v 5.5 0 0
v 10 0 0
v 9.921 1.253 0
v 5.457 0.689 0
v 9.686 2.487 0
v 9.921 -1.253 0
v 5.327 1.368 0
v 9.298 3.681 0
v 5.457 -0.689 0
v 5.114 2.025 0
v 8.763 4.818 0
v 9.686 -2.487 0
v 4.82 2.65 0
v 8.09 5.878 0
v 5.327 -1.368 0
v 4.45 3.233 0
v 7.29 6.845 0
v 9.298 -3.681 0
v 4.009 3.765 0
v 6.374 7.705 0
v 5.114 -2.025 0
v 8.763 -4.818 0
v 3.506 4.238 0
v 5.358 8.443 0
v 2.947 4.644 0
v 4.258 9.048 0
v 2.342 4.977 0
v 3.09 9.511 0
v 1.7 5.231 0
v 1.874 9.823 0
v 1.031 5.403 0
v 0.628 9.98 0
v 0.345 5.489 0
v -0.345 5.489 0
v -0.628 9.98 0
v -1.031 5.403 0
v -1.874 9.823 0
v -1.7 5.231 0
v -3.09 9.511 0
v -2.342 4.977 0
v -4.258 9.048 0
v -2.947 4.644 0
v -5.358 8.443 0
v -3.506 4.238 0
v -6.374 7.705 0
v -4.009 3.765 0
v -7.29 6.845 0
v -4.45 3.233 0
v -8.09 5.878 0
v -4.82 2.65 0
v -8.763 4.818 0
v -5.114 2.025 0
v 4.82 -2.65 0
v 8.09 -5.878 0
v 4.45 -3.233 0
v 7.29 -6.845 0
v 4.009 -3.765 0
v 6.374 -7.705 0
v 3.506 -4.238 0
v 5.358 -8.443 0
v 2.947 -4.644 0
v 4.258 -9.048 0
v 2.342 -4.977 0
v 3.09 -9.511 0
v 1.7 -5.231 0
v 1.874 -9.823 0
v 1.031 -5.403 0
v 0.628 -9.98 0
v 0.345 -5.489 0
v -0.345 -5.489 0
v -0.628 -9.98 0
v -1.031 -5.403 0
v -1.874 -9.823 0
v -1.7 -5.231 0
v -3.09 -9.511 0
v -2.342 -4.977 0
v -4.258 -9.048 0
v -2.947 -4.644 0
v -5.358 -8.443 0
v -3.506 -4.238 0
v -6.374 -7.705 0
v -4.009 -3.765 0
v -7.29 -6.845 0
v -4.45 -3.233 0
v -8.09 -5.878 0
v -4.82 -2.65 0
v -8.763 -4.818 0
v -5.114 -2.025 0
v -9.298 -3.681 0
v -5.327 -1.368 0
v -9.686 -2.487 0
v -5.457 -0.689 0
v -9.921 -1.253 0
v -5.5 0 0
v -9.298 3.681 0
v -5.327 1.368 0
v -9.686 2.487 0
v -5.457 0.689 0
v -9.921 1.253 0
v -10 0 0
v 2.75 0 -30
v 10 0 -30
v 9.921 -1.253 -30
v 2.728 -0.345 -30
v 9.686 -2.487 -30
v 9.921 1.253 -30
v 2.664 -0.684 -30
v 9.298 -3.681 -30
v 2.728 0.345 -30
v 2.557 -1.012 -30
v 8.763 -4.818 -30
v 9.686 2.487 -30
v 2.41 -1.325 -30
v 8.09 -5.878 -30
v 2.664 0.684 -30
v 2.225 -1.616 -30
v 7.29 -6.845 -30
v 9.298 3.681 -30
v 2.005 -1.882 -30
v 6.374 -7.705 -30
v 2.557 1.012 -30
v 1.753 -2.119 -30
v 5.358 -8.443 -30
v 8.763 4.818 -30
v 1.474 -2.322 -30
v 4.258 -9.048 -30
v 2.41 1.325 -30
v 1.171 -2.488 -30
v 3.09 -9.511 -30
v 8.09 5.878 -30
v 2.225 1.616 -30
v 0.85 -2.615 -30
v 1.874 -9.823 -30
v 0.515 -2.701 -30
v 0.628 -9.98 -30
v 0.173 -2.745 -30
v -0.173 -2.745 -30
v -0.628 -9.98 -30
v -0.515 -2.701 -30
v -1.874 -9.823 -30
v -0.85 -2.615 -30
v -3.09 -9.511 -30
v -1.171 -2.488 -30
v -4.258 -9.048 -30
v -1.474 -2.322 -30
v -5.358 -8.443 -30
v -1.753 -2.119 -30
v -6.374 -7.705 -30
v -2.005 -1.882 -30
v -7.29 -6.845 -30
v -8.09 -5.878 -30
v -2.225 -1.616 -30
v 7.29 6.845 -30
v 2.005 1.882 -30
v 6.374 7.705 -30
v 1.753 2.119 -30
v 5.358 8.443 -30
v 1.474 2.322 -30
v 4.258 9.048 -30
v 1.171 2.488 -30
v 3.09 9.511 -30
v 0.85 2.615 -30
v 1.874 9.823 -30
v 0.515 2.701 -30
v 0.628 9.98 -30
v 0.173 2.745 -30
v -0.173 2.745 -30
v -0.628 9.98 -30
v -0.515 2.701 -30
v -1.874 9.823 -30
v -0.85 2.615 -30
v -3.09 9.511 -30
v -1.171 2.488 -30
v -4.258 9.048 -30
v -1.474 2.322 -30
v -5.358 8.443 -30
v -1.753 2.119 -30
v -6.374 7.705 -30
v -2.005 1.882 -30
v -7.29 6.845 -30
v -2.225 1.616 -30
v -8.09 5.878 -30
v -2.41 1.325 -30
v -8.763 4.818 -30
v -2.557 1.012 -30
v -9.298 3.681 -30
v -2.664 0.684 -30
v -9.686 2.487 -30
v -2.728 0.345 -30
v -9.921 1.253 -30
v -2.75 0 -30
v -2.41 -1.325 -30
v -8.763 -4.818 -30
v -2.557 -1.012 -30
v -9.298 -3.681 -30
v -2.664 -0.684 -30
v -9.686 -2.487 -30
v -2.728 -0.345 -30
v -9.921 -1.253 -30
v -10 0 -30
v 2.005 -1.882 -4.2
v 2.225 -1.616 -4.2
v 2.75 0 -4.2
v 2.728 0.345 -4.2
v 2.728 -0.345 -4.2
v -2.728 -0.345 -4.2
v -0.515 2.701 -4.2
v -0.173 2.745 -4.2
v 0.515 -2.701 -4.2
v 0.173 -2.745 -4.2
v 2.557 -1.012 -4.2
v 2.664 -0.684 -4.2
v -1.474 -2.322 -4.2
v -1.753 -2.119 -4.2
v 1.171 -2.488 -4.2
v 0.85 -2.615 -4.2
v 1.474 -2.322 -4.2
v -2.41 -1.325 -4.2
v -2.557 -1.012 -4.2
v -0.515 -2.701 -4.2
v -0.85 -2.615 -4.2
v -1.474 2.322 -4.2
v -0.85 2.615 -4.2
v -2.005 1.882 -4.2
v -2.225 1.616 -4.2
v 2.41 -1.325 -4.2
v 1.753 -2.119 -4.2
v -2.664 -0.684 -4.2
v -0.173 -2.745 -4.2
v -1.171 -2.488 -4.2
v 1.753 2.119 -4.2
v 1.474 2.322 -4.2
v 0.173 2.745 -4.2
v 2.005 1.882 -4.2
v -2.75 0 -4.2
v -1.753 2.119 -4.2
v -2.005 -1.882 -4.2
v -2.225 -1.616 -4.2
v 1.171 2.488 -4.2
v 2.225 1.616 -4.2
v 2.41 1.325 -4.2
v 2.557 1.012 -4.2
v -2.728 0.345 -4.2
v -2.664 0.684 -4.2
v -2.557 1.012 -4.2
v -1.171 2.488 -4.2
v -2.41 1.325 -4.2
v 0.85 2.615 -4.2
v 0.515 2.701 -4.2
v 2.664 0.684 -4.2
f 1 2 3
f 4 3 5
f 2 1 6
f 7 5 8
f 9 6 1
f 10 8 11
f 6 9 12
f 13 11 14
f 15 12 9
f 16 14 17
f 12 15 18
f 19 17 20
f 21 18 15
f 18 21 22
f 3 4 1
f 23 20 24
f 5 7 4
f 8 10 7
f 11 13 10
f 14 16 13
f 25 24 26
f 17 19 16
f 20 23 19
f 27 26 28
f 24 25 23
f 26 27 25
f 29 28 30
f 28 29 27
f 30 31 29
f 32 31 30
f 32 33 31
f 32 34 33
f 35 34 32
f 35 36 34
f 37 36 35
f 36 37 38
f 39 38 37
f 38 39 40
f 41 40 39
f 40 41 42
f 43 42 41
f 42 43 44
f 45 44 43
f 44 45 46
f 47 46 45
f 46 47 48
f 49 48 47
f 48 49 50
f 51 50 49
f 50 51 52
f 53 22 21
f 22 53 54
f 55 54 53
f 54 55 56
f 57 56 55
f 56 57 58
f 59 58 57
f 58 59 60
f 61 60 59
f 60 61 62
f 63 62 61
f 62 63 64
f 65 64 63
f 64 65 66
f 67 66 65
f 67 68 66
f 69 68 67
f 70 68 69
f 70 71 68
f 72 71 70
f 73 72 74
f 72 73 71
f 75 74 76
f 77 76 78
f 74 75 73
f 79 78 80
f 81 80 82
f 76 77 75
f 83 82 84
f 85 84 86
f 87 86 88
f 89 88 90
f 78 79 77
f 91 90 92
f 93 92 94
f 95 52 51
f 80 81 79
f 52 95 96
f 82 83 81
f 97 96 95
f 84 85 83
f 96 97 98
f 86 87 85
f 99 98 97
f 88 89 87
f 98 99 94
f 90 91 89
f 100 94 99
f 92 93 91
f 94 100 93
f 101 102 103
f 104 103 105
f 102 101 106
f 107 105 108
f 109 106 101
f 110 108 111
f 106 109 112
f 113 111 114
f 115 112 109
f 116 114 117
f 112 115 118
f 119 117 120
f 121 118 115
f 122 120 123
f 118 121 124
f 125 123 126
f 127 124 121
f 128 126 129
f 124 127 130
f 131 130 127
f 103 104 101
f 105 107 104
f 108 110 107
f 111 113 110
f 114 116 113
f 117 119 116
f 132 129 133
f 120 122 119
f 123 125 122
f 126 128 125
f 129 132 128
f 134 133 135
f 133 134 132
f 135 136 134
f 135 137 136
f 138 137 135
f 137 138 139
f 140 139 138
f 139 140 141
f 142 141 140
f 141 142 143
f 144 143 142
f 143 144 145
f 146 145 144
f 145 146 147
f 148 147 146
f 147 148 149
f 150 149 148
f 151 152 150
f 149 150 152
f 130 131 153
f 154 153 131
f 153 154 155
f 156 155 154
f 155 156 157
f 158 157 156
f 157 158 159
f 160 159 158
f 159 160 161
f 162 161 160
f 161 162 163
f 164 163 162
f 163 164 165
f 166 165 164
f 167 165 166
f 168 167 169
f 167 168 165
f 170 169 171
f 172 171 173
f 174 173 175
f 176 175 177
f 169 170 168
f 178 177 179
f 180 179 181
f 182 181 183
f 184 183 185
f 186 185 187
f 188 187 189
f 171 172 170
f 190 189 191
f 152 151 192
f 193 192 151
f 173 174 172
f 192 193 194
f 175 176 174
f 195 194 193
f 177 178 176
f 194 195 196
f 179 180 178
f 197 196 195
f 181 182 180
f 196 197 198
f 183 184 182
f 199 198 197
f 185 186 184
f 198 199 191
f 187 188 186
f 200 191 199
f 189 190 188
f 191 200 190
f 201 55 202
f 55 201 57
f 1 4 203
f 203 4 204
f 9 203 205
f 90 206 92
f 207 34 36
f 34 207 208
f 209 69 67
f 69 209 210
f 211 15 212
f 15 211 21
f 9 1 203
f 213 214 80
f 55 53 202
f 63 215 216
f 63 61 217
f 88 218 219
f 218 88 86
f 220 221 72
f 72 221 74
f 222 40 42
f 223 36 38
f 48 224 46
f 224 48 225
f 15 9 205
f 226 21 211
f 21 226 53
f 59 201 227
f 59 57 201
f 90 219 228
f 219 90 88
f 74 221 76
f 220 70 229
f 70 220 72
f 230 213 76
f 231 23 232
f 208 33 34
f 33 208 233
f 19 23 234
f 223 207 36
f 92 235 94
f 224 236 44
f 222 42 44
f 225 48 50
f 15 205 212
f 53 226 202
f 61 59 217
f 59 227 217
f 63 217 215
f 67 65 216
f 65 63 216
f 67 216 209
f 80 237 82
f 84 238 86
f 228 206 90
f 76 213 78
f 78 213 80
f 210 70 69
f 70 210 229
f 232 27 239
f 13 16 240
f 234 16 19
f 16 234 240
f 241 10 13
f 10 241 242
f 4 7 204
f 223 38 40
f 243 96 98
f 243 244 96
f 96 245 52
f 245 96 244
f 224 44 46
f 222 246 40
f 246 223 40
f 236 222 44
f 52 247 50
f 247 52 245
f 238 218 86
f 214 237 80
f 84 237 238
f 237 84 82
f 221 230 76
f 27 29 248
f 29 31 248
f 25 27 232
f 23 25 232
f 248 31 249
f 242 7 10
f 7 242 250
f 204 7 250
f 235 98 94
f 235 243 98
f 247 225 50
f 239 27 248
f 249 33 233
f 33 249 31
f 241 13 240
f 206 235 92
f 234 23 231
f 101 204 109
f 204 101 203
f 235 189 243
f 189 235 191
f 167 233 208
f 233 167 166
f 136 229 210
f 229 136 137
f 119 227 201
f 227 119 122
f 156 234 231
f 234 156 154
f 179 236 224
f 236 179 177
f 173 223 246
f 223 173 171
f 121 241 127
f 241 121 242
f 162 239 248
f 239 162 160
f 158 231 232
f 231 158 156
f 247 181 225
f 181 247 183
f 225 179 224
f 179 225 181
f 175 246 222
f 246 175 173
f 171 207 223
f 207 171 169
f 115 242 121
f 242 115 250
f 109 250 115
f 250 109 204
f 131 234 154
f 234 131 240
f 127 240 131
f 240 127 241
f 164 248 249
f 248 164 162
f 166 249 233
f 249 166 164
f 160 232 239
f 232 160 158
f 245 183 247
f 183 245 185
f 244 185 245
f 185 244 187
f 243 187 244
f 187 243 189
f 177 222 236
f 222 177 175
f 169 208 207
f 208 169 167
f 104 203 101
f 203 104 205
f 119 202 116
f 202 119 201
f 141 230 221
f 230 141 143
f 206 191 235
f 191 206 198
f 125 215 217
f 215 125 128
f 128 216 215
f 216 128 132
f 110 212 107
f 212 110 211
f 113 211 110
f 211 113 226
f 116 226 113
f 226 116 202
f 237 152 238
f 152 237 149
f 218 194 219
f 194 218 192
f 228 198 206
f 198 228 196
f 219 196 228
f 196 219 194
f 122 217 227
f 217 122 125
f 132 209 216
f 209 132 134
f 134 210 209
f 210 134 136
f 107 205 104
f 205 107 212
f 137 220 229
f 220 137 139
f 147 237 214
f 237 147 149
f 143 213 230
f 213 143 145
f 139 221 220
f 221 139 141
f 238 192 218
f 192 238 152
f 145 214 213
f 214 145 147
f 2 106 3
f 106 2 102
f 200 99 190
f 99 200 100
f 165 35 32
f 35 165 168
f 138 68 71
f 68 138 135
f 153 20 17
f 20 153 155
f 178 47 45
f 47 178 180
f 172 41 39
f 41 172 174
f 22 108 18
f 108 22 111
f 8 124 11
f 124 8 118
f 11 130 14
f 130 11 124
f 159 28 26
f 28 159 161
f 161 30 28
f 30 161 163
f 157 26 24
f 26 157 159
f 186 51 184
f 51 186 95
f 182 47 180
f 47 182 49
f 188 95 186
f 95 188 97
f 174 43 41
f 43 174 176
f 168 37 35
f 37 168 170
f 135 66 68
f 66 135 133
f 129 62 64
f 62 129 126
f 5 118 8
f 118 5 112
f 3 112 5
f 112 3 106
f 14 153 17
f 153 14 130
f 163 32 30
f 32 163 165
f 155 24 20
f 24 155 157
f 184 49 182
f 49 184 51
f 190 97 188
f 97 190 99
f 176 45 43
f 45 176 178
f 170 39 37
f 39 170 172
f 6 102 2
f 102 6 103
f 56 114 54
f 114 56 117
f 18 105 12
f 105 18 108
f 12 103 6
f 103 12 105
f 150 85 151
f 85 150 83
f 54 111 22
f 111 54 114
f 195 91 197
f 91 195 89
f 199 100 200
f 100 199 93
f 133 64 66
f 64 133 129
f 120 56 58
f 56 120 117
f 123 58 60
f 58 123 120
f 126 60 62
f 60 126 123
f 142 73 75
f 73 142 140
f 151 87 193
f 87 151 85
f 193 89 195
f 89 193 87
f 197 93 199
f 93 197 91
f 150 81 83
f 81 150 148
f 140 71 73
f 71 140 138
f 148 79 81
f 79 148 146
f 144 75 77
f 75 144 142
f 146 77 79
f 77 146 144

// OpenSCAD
$fn = 50;


difference() {
	union() {
		translate(v = [0, 0, -30.0000000000]) {
			cylinder(h = 30, r = 10.0000000000);
		}
	}
	union() {
		translate(v = [0, 0, 0]) {
			rotate(a = [0, 0, 0]) {
				difference() {
					union() {
						#translate(v = [0, 0, -30.0000000000]) {
							cylinder(h = 30, r = 2.2500000000);
						}
						#translate(v = [0, 0, -4.2000000000]) {
							cylinder(h = 4.2000000000, r = 10.0000000000, r1 = 2.7500000000, r2 = 5.5000000000);
						}
						#translate(v = [0, 0, -30.0000000000]) {
							cylinder(h = 30, r = 2.7500000000);
						}
						#translate(v = [0, 0, -30.0000000000]) {
							cylinder(h = 30, r = 2.2500000000);
						}
					}
					union();
				}
			}
		}
	}
}
